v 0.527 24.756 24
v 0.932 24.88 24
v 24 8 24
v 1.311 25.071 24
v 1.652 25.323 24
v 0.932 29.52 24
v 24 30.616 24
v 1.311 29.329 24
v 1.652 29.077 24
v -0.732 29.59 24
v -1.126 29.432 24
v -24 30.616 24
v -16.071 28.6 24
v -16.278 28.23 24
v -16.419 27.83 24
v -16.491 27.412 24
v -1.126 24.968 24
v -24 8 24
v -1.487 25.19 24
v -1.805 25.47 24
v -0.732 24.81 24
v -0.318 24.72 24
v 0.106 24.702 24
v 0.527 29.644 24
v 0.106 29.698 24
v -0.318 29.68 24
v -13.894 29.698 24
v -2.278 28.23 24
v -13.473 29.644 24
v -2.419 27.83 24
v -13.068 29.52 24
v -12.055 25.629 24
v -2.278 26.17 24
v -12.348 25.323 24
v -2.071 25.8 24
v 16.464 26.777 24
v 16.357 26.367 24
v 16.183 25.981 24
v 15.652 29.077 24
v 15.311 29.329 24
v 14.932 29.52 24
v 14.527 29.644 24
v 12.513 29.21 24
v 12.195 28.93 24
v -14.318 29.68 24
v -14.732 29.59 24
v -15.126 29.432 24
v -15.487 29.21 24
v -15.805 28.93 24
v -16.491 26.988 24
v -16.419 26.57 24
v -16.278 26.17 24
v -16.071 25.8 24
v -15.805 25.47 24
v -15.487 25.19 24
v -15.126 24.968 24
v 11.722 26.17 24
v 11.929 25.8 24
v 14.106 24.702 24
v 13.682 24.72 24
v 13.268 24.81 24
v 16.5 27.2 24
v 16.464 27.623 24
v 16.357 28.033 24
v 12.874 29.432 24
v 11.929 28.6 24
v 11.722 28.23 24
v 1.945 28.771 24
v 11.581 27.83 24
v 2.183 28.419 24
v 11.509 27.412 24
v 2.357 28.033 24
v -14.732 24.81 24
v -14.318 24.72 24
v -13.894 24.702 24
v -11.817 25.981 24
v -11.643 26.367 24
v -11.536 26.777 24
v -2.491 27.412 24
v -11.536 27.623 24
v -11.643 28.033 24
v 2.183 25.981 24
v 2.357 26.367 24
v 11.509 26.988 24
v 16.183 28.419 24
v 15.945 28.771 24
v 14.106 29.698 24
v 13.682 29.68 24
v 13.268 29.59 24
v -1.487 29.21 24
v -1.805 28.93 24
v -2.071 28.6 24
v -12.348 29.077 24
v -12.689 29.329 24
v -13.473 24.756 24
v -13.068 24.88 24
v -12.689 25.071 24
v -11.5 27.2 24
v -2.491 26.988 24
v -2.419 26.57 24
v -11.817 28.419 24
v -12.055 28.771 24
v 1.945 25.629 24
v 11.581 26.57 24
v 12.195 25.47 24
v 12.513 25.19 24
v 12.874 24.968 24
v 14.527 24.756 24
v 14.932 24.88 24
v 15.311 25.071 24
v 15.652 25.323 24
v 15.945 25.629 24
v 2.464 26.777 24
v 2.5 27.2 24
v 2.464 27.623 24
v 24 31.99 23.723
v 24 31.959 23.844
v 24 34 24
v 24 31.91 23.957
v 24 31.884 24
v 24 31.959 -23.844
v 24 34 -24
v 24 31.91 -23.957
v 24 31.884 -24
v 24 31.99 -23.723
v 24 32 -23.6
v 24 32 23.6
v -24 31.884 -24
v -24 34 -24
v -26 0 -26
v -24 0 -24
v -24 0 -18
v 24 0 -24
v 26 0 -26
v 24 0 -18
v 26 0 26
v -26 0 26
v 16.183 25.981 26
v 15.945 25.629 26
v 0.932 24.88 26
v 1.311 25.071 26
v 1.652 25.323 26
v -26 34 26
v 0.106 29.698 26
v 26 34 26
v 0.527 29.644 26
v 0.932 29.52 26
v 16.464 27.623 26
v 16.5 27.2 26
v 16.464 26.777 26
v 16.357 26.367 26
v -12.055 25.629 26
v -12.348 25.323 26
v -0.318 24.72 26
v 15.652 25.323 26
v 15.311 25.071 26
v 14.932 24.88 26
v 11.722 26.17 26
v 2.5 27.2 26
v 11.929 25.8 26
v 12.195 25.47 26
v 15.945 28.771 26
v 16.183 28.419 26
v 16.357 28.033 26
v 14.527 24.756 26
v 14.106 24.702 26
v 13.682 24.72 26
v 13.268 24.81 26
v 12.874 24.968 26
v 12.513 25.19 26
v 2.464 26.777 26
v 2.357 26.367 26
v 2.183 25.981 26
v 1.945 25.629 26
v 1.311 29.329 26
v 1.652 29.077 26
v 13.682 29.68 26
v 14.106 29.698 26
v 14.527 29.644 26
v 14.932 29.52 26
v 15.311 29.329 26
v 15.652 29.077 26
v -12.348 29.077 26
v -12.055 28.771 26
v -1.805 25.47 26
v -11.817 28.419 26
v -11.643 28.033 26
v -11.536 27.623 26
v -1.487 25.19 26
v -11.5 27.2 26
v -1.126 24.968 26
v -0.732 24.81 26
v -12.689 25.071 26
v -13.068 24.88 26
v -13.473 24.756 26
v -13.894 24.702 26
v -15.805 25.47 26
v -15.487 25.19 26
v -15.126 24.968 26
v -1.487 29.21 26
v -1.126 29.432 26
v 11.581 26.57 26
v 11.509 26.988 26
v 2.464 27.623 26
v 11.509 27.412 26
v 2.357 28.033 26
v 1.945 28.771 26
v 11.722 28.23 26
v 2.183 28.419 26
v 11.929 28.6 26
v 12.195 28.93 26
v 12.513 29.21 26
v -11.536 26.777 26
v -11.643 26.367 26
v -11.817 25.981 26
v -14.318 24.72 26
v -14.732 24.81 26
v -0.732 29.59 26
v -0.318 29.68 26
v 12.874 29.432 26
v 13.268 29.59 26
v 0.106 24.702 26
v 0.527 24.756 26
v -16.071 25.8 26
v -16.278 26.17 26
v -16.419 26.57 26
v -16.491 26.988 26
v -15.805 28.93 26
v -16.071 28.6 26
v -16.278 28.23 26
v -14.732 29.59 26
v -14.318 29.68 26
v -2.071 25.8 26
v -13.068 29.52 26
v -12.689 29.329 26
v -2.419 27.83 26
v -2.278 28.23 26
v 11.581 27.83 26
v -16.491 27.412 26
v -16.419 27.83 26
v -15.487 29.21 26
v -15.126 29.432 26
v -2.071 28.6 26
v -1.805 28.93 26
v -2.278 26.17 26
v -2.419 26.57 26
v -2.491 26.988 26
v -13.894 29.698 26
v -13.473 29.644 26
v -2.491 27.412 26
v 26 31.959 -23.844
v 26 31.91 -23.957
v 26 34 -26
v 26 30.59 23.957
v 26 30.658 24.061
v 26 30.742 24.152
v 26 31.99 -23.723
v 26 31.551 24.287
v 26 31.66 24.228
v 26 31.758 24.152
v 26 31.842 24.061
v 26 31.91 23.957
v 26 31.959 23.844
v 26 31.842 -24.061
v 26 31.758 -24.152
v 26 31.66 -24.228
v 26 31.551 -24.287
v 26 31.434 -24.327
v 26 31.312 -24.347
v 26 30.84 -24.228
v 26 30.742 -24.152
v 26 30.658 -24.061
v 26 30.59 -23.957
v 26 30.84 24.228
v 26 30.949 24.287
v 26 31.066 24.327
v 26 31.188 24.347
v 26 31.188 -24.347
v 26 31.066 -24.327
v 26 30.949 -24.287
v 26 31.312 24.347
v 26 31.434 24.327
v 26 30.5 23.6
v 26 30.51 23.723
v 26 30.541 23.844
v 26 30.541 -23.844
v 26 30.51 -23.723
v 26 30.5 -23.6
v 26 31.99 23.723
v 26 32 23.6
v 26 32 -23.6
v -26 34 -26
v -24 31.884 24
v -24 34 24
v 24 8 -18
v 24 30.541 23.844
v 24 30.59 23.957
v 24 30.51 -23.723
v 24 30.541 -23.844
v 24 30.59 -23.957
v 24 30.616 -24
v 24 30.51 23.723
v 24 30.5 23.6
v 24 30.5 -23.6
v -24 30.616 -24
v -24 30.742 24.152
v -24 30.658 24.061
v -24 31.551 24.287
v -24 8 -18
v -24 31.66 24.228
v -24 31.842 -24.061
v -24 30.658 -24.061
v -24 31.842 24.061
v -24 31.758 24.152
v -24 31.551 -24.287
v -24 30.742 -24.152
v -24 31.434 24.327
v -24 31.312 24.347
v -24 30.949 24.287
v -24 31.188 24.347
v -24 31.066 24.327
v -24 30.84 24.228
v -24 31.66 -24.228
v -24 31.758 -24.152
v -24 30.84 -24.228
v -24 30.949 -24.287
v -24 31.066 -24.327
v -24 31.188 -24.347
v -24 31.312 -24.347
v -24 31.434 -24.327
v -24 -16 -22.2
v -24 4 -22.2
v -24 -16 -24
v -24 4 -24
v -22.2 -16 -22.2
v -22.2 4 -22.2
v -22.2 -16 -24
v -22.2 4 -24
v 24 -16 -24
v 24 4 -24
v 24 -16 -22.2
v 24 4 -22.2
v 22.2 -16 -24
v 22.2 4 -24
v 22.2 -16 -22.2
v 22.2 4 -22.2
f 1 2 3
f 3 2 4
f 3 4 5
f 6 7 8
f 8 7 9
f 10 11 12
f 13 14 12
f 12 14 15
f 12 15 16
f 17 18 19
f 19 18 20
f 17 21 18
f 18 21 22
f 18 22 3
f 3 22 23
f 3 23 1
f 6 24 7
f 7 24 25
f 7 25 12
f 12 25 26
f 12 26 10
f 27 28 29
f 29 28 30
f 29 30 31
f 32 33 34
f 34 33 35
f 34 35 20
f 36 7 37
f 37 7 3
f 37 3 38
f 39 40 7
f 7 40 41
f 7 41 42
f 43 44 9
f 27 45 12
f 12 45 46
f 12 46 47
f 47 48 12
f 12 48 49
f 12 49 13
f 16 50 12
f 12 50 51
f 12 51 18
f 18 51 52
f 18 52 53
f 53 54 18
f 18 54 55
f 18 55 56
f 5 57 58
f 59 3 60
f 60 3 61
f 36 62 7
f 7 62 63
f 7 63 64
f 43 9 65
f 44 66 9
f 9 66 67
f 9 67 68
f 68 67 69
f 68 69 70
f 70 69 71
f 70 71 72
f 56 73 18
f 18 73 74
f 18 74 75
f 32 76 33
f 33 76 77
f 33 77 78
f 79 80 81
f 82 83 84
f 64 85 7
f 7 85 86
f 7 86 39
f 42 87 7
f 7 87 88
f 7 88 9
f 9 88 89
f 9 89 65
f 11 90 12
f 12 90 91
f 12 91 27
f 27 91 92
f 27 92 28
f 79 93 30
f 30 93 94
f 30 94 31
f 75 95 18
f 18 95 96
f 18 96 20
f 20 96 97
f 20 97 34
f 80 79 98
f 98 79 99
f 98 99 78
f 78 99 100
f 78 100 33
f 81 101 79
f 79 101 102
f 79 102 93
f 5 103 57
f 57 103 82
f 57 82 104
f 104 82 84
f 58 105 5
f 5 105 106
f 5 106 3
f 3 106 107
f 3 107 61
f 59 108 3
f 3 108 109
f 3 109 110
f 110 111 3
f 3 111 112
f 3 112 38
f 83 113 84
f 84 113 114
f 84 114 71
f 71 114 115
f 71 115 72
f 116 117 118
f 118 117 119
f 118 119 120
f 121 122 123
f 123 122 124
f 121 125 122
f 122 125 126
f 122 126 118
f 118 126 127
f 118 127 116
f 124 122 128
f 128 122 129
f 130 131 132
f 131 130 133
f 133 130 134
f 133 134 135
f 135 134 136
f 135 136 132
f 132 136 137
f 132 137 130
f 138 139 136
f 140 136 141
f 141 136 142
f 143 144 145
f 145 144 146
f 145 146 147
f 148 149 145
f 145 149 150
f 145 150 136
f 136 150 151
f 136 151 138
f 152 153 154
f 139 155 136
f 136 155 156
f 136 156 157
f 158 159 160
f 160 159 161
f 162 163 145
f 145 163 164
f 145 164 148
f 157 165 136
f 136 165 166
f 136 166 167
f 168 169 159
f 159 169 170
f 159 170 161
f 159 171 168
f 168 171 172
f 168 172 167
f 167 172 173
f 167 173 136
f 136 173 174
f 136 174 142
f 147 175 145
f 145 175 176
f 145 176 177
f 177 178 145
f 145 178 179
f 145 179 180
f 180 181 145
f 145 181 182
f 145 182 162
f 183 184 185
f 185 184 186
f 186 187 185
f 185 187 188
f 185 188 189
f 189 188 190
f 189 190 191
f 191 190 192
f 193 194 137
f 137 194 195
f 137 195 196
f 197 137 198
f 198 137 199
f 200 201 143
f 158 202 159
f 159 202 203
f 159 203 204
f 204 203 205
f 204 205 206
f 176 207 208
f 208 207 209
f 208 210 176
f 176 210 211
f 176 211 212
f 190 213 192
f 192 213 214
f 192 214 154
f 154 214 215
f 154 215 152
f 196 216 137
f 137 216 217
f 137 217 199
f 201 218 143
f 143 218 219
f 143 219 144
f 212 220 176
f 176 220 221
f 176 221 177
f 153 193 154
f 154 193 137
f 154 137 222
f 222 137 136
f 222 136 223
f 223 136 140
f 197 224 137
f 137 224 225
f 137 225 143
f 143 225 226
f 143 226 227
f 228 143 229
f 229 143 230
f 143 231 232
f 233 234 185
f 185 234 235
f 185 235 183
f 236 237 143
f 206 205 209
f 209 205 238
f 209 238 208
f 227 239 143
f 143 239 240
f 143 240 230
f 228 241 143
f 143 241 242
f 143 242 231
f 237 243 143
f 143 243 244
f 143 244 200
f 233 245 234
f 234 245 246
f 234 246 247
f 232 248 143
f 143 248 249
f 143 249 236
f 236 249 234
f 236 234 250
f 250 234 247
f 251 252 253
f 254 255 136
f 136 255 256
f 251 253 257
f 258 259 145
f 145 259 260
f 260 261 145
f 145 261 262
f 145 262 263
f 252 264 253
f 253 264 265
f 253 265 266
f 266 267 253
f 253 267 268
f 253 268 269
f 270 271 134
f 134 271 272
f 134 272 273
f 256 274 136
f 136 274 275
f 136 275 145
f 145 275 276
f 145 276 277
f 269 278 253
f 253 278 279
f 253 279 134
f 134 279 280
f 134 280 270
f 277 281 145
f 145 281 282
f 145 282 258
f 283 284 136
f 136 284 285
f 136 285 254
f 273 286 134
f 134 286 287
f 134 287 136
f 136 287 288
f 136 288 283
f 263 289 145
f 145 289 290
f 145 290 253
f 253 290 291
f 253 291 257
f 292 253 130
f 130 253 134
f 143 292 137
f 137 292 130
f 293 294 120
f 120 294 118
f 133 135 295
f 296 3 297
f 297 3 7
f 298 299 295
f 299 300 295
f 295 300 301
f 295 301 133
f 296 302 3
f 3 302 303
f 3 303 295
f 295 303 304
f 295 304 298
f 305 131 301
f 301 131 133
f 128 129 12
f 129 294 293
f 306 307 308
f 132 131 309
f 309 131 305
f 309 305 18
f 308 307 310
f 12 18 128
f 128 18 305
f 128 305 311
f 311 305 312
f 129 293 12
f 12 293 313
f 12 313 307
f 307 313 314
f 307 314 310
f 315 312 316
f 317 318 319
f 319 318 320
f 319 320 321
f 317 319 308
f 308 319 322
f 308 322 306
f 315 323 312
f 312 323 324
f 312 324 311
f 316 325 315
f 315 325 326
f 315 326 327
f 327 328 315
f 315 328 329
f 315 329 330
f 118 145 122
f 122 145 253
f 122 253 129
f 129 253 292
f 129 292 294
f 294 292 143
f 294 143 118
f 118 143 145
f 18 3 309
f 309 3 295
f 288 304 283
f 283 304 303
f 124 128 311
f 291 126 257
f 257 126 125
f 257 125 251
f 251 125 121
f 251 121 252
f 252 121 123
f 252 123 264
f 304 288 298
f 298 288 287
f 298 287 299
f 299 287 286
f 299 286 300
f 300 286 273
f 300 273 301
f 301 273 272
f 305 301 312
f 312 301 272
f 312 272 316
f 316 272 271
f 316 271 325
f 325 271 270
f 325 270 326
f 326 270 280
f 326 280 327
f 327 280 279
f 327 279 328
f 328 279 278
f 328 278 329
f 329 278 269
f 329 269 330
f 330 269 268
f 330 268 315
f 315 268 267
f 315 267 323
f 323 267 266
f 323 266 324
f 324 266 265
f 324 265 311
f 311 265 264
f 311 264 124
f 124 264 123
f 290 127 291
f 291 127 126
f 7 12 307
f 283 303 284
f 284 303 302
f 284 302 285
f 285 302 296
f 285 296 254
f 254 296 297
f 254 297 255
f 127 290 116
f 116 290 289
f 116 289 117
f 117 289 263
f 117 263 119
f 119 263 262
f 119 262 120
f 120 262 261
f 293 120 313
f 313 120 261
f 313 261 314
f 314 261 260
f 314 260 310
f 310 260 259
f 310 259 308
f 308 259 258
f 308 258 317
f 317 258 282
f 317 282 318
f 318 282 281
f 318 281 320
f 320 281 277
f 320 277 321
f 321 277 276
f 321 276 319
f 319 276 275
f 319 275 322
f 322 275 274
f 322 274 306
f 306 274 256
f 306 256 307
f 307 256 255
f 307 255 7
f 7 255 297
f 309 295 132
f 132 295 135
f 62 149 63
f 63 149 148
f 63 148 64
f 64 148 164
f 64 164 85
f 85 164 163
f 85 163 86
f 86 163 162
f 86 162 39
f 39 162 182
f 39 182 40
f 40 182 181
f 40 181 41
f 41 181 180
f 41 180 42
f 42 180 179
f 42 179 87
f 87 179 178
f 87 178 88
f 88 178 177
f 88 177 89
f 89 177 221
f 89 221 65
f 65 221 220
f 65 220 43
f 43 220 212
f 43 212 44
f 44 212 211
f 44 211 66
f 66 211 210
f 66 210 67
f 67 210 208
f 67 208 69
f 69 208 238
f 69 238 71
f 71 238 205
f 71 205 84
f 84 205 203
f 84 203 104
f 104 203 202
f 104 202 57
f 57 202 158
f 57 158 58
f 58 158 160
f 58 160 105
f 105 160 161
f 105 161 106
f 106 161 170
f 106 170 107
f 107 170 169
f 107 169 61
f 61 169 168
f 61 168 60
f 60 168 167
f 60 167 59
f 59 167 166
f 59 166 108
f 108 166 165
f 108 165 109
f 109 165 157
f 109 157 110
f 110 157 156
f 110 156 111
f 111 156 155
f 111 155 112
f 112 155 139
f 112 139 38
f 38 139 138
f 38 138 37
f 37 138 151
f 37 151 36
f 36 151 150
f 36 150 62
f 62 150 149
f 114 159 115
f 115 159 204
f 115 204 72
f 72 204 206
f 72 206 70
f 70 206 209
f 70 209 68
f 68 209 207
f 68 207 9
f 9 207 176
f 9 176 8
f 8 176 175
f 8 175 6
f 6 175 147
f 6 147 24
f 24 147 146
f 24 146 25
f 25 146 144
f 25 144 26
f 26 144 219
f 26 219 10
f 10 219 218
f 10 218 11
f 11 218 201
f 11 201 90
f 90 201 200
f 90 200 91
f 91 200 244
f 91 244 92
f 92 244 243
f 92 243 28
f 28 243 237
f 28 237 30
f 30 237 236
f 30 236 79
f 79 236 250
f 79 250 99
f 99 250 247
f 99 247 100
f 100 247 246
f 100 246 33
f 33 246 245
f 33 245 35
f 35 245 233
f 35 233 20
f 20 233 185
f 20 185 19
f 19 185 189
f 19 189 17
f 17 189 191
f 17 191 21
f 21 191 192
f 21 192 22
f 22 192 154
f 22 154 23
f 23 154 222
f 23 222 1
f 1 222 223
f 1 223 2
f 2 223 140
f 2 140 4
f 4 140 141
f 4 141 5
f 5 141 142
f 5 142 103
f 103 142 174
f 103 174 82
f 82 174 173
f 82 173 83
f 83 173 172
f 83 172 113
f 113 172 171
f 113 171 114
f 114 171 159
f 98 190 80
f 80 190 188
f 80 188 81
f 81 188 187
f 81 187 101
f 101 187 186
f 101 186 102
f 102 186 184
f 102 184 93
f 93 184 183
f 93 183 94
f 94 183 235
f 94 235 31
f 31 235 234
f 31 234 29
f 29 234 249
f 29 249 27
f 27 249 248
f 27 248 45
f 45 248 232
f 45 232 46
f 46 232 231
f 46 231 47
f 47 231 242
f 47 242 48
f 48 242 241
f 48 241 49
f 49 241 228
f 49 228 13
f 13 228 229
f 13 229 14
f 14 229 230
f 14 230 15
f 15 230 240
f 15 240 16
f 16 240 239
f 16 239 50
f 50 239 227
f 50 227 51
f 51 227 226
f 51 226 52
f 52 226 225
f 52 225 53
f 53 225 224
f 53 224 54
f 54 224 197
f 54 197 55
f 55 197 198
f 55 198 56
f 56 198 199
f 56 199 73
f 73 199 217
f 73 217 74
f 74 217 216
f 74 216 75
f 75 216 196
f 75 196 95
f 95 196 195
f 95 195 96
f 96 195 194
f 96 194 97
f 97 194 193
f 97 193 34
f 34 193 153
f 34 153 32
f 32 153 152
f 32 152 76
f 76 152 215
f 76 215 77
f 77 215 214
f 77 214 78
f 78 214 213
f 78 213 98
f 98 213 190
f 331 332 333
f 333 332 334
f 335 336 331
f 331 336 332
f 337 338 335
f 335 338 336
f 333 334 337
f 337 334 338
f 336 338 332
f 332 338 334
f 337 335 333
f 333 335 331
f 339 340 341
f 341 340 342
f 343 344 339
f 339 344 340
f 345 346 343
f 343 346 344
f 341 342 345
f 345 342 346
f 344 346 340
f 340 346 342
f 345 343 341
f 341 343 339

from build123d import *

# Parameters (mm, degrees)
SKIZZE1_W                                = 50
SKIZZE1_H                                = 50
AUFSATZ_LINEAR_AUSTRAGEN1_DEPTH          = 8
SKIZZE2_W                                = 52
SKIZZE2_H                                = 52
SKIZZE2_W_2                              = 48
SKIZZE2_H_2                              = 48
LINEAR_AUSTRAGEN_D_NN1_DEPTH             = 26
LINEAR_AUSTRAGEN_D_NN1_DIRECTION_2_REACH = 38.249
SCHNITT_LINEAR_AUSTRAGEN1_REACH          = 69.35
SCHNITT_LINEAR_AUSTRAGEN2_REACH          = 47.033
SKIZZE4_W                                = 48
SKIZZE4_H                                = 6
SCHNITT_LINEAR_AUSTRAGEN3_REACH          = 69.35
SKIZZE5_R                                = 2.5
AUFSATZ_LINEAR_AUSTRAGEN2_DEPTH          = 16
AUFSATZ_LINEAR_AUSTRAGEN2_DEPTH_BACK     = 4
SKIZZE6_W                                = 1.8
SKIZZE6_H                                = 1.8
AUFSATZ_LINEAR_AUSTRAGEN2_2_DEPTH        = 16
AUFSATZ_LINEAR_AUSTRAGEN2_2_DEPTH_BACK   = 4


with BuildPart() as part:
    # Skizze1 → Aufsatz-Linear austragen1 (new body)
    with BuildSketch(Plane(origin=(0, 0, 0), x_dir=(1, 0, 0), z_dir=(0, 1, 0))):
        Rectangle(SKIZZE1_W, SKIZZE1_H)
    extrude(amount=AUFSATZ_LINEAR_AUSTRAGEN1_DEPTH)

    # Skizze2 → Linear-Austragen-Dünn1 (add)
    with BuildSketch(Plane(origin=(0, 8, 0), x_dir=(1, 0, 0), z_dir=(0, 1, 0))):
        Rectangle(SKIZZE2_W, SKIZZE2_H)
        Rectangle(SKIZZE2_W_2, SKIZZE2_H_2, mode=Mode.SUBTRACT)
    extrude(amount=LINEAR_AUSTRAGEN_D_NN1_DEPTH)

    # Linear-Austragen-Dünn1 direction 2: up to this face of the body (flat: up to its plane)
    linear_austragen_d_nn1_direction_2_end = Plane(part.part.faces().sort_by_distance((0, 0, 0))[0])
    # Skizze2 → Linear-Austragen-Dünn1 direction 2 (add, up to the picked face)
    with BuildSketch(Plane(origin=(0, 8, 0), x_dir=(1, 0, 0), z_dir=(0, 1, 0)), mode=Mode.PRIVATE) as linear_austragen_d_nn1_direction_2_sk1:
        Rectangle(SKIZZE2_W, SKIZZE2_H)
        Rectangle(SKIZZE2_W_2, SKIZZE2_H_2, mode=Mode.SUBTRACT)
    linear_austragen_d_nn1_direction_2_tool1 = split(extrude(linear_austragen_d_nn1_direction_2_sk1.sketch, amount=-LINEAR_AUSTRAGEN_D_NN1_DIRECTION_2_REACH, mode=Mode.PRIVATE), bisect_by=linear_austragen_d_nn1_direction_2_end, keep=Keep.BOTH, mode=Mode.PRIVATE)
    add(linear_austragen_d_nn1_direction_2_tool1.solids().sort_by(Axis((0, 8, 25.264609), (0, -1, 0)))[0])

    # Schnitt-Linear austragen1: up to this face of the body (flat: up to its plane)
    schnitt_linear_austragen1_end = Plane(part.part.faces().sort_by_distance((-24, 21, 0))[0])
    # Skizze3 → Schnitt-Linear austragen1 (cut, up to the picked face)
    with BuildSketch(Plane(origin=(26, 0, 0), x_dir=(0, 0, -1), z_dir=(1, 0, 0)), mode=Mode.PRIVATE) as schnitt_linear_austragen1_sk1:
        with BuildLine():
            Line((-23.6, 32), (23.6, 32))
            ThreePointArc((23.6, 32), (24.35, 31.25), (23.6, 30.5))
            Line((23.6, 30.5), (-23.6, 30.5))
            ThreePointArc((-23.6, 30.5), (-24.35, 31.25), (-23.6, 32))
        make_face()
    schnitt_linear_austragen1_tool1 = split(extrude(schnitt_linear_austragen1_sk1.sketch, amount=-SCHNITT_LINEAR_AUSTRAGEN1_REACH, mode=Mode.PRIVATE), bisect_by=schnitt_linear_austragen1_end, keep=Keep.BOTH, mode=Mode.PRIVATE)
    add(schnitt_linear_austragen1_tool1.solids().sort_by(Axis((26, 31.25, 0), (-1, 0, 0)))[0], mode=Mode.SUBTRACT)

    # Skizze4 → Schnitt-Linear austragen2 (cut, up to next)
    with BuildSketch(Plane(origin=(0, 8, 0), x_dir=(1, 0, 0), z_dir=(0, 1, 0)), mode=Mode.PRIVATE) as schnitt_linear_austragen2_sk1:
        with Locations((0, 21)):
            Rectangle(SKIZZE4_W, SKIZZE4_H)
    schnitt_linear_austragen2_tool1 = extrude(schnitt_linear_austragen2_sk1.sketch, amount=-SCHNITT_LINEAR_AUSTRAGEN2_REACH, mode=Mode.PRIVATE) & part.part
    add(schnitt_linear_austragen2_tool1.solids().sort_by_distance((0, 8, -21))[0], mode=Mode.SUBTRACT)

    # Skizze5 → Schnitt-Linear austragen3 (cut, up to next)
    with BuildSketch(Plane.XY.offset(26), mode=Mode.PRIVATE) as schnitt_linear_austragen3_sk1:
        with Locations((-14, 27.2)):
            Circle(SKIZZE5_R)
    schnitt_linear_austragen3_tool1 = extrude(schnitt_linear_austragen3_sk1.sketch, amount=-SCHNITT_LINEAR_AUSTRAGEN3_REACH, mode=Mode.PRIVATE) & part.part
    # Skizze5 → Schnitt-Linear austragen3 (cut, up to next)
    with BuildSketch(Plane.XY.offset(26), mode=Mode.PRIVATE) as schnitt_linear_austragen3_sk2:
        with Locations((0, 27.2)):
            Circle(SKIZZE5_R)
    schnitt_linear_austragen3_tool2 = extrude(schnitt_linear_austragen3_sk2.sketch, amount=-SCHNITT_LINEAR_AUSTRAGEN3_REACH, mode=Mode.PRIVATE) & part.part
    # Skizze5 → Schnitt-Linear austragen3 (cut, up to next)
    with BuildSketch(Plane.XY.offset(26), mode=Mode.PRIVATE) as schnitt_linear_austragen3_sk3:
        with Locations((14, 27.2)):
            Circle(SKIZZE5_R)
    schnitt_linear_austragen3_tool3 = extrude(schnitt_linear_austragen3_sk3.sketch, amount=-SCHNITT_LINEAR_AUSTRAGEN3_REACH, mode=Mode.PRIVATE) & part.part
    add(schnitt_linear_austragen3_tool1.solids().sort_by_distance((-14, 27.2, 26))[0], mode=Mode.SUBTRACT)
    add(schnitt_linear_austragen3_tool2.solids().sort_by_distance((0, 27.2, 26))[0], mode=Mode.SUBTRACT)
    add(schnitt_linear_austragen3_tool3.solids().sort_by_distance((14, 27.2, 26))[0], mode=Mode.SUBTRACT)


with BuildPart() as body_2:
    # Skizze6 → Aufsatz-Linear austragen2 (new, two sides: drawn at the far end of the back side and taken through both)
    with BuildSketch(Plane.XZ.offset(-AUFSATZ_LINEAR_AUSTRAGEN2_DEPTH_BACK)):
        with Locations((-23.1, -23.1)):
            Rectangle(SKIZZE6_W, SKIZZE6_H)
    extrude(amount=AUFSATZ_LINEAR_AUSTRAGEN2_DEPTH + AUFSATZ_LINEAR_AUSTRAGEN2_DEPTH_BACK)


with BuildPart() as body_3:
    # Skizze6 → Aufsatz-Linear austragen2 2 (new, two sides: drawn at the far end of the back side and taken through both)
    with BuildSketch(Plane.XZ.offset(-AUFSATZ_LINEAR_AUSTRAGEN2_2_DEPTH_BACK)):
        with Locations((23.1, -23.1)):
            Rectangle(SKIZZE6_W, SKIZZE6_H)
    extrude(amount=AUFSATZ_LINEAR_AUSTRAGEN2_2_DEPTH + AUFSATZ_LINEAR_AUSTRAGEN2_2_DEPTH_BACK)


solid = Compound([part.part, body_2.part, body_3.part])
